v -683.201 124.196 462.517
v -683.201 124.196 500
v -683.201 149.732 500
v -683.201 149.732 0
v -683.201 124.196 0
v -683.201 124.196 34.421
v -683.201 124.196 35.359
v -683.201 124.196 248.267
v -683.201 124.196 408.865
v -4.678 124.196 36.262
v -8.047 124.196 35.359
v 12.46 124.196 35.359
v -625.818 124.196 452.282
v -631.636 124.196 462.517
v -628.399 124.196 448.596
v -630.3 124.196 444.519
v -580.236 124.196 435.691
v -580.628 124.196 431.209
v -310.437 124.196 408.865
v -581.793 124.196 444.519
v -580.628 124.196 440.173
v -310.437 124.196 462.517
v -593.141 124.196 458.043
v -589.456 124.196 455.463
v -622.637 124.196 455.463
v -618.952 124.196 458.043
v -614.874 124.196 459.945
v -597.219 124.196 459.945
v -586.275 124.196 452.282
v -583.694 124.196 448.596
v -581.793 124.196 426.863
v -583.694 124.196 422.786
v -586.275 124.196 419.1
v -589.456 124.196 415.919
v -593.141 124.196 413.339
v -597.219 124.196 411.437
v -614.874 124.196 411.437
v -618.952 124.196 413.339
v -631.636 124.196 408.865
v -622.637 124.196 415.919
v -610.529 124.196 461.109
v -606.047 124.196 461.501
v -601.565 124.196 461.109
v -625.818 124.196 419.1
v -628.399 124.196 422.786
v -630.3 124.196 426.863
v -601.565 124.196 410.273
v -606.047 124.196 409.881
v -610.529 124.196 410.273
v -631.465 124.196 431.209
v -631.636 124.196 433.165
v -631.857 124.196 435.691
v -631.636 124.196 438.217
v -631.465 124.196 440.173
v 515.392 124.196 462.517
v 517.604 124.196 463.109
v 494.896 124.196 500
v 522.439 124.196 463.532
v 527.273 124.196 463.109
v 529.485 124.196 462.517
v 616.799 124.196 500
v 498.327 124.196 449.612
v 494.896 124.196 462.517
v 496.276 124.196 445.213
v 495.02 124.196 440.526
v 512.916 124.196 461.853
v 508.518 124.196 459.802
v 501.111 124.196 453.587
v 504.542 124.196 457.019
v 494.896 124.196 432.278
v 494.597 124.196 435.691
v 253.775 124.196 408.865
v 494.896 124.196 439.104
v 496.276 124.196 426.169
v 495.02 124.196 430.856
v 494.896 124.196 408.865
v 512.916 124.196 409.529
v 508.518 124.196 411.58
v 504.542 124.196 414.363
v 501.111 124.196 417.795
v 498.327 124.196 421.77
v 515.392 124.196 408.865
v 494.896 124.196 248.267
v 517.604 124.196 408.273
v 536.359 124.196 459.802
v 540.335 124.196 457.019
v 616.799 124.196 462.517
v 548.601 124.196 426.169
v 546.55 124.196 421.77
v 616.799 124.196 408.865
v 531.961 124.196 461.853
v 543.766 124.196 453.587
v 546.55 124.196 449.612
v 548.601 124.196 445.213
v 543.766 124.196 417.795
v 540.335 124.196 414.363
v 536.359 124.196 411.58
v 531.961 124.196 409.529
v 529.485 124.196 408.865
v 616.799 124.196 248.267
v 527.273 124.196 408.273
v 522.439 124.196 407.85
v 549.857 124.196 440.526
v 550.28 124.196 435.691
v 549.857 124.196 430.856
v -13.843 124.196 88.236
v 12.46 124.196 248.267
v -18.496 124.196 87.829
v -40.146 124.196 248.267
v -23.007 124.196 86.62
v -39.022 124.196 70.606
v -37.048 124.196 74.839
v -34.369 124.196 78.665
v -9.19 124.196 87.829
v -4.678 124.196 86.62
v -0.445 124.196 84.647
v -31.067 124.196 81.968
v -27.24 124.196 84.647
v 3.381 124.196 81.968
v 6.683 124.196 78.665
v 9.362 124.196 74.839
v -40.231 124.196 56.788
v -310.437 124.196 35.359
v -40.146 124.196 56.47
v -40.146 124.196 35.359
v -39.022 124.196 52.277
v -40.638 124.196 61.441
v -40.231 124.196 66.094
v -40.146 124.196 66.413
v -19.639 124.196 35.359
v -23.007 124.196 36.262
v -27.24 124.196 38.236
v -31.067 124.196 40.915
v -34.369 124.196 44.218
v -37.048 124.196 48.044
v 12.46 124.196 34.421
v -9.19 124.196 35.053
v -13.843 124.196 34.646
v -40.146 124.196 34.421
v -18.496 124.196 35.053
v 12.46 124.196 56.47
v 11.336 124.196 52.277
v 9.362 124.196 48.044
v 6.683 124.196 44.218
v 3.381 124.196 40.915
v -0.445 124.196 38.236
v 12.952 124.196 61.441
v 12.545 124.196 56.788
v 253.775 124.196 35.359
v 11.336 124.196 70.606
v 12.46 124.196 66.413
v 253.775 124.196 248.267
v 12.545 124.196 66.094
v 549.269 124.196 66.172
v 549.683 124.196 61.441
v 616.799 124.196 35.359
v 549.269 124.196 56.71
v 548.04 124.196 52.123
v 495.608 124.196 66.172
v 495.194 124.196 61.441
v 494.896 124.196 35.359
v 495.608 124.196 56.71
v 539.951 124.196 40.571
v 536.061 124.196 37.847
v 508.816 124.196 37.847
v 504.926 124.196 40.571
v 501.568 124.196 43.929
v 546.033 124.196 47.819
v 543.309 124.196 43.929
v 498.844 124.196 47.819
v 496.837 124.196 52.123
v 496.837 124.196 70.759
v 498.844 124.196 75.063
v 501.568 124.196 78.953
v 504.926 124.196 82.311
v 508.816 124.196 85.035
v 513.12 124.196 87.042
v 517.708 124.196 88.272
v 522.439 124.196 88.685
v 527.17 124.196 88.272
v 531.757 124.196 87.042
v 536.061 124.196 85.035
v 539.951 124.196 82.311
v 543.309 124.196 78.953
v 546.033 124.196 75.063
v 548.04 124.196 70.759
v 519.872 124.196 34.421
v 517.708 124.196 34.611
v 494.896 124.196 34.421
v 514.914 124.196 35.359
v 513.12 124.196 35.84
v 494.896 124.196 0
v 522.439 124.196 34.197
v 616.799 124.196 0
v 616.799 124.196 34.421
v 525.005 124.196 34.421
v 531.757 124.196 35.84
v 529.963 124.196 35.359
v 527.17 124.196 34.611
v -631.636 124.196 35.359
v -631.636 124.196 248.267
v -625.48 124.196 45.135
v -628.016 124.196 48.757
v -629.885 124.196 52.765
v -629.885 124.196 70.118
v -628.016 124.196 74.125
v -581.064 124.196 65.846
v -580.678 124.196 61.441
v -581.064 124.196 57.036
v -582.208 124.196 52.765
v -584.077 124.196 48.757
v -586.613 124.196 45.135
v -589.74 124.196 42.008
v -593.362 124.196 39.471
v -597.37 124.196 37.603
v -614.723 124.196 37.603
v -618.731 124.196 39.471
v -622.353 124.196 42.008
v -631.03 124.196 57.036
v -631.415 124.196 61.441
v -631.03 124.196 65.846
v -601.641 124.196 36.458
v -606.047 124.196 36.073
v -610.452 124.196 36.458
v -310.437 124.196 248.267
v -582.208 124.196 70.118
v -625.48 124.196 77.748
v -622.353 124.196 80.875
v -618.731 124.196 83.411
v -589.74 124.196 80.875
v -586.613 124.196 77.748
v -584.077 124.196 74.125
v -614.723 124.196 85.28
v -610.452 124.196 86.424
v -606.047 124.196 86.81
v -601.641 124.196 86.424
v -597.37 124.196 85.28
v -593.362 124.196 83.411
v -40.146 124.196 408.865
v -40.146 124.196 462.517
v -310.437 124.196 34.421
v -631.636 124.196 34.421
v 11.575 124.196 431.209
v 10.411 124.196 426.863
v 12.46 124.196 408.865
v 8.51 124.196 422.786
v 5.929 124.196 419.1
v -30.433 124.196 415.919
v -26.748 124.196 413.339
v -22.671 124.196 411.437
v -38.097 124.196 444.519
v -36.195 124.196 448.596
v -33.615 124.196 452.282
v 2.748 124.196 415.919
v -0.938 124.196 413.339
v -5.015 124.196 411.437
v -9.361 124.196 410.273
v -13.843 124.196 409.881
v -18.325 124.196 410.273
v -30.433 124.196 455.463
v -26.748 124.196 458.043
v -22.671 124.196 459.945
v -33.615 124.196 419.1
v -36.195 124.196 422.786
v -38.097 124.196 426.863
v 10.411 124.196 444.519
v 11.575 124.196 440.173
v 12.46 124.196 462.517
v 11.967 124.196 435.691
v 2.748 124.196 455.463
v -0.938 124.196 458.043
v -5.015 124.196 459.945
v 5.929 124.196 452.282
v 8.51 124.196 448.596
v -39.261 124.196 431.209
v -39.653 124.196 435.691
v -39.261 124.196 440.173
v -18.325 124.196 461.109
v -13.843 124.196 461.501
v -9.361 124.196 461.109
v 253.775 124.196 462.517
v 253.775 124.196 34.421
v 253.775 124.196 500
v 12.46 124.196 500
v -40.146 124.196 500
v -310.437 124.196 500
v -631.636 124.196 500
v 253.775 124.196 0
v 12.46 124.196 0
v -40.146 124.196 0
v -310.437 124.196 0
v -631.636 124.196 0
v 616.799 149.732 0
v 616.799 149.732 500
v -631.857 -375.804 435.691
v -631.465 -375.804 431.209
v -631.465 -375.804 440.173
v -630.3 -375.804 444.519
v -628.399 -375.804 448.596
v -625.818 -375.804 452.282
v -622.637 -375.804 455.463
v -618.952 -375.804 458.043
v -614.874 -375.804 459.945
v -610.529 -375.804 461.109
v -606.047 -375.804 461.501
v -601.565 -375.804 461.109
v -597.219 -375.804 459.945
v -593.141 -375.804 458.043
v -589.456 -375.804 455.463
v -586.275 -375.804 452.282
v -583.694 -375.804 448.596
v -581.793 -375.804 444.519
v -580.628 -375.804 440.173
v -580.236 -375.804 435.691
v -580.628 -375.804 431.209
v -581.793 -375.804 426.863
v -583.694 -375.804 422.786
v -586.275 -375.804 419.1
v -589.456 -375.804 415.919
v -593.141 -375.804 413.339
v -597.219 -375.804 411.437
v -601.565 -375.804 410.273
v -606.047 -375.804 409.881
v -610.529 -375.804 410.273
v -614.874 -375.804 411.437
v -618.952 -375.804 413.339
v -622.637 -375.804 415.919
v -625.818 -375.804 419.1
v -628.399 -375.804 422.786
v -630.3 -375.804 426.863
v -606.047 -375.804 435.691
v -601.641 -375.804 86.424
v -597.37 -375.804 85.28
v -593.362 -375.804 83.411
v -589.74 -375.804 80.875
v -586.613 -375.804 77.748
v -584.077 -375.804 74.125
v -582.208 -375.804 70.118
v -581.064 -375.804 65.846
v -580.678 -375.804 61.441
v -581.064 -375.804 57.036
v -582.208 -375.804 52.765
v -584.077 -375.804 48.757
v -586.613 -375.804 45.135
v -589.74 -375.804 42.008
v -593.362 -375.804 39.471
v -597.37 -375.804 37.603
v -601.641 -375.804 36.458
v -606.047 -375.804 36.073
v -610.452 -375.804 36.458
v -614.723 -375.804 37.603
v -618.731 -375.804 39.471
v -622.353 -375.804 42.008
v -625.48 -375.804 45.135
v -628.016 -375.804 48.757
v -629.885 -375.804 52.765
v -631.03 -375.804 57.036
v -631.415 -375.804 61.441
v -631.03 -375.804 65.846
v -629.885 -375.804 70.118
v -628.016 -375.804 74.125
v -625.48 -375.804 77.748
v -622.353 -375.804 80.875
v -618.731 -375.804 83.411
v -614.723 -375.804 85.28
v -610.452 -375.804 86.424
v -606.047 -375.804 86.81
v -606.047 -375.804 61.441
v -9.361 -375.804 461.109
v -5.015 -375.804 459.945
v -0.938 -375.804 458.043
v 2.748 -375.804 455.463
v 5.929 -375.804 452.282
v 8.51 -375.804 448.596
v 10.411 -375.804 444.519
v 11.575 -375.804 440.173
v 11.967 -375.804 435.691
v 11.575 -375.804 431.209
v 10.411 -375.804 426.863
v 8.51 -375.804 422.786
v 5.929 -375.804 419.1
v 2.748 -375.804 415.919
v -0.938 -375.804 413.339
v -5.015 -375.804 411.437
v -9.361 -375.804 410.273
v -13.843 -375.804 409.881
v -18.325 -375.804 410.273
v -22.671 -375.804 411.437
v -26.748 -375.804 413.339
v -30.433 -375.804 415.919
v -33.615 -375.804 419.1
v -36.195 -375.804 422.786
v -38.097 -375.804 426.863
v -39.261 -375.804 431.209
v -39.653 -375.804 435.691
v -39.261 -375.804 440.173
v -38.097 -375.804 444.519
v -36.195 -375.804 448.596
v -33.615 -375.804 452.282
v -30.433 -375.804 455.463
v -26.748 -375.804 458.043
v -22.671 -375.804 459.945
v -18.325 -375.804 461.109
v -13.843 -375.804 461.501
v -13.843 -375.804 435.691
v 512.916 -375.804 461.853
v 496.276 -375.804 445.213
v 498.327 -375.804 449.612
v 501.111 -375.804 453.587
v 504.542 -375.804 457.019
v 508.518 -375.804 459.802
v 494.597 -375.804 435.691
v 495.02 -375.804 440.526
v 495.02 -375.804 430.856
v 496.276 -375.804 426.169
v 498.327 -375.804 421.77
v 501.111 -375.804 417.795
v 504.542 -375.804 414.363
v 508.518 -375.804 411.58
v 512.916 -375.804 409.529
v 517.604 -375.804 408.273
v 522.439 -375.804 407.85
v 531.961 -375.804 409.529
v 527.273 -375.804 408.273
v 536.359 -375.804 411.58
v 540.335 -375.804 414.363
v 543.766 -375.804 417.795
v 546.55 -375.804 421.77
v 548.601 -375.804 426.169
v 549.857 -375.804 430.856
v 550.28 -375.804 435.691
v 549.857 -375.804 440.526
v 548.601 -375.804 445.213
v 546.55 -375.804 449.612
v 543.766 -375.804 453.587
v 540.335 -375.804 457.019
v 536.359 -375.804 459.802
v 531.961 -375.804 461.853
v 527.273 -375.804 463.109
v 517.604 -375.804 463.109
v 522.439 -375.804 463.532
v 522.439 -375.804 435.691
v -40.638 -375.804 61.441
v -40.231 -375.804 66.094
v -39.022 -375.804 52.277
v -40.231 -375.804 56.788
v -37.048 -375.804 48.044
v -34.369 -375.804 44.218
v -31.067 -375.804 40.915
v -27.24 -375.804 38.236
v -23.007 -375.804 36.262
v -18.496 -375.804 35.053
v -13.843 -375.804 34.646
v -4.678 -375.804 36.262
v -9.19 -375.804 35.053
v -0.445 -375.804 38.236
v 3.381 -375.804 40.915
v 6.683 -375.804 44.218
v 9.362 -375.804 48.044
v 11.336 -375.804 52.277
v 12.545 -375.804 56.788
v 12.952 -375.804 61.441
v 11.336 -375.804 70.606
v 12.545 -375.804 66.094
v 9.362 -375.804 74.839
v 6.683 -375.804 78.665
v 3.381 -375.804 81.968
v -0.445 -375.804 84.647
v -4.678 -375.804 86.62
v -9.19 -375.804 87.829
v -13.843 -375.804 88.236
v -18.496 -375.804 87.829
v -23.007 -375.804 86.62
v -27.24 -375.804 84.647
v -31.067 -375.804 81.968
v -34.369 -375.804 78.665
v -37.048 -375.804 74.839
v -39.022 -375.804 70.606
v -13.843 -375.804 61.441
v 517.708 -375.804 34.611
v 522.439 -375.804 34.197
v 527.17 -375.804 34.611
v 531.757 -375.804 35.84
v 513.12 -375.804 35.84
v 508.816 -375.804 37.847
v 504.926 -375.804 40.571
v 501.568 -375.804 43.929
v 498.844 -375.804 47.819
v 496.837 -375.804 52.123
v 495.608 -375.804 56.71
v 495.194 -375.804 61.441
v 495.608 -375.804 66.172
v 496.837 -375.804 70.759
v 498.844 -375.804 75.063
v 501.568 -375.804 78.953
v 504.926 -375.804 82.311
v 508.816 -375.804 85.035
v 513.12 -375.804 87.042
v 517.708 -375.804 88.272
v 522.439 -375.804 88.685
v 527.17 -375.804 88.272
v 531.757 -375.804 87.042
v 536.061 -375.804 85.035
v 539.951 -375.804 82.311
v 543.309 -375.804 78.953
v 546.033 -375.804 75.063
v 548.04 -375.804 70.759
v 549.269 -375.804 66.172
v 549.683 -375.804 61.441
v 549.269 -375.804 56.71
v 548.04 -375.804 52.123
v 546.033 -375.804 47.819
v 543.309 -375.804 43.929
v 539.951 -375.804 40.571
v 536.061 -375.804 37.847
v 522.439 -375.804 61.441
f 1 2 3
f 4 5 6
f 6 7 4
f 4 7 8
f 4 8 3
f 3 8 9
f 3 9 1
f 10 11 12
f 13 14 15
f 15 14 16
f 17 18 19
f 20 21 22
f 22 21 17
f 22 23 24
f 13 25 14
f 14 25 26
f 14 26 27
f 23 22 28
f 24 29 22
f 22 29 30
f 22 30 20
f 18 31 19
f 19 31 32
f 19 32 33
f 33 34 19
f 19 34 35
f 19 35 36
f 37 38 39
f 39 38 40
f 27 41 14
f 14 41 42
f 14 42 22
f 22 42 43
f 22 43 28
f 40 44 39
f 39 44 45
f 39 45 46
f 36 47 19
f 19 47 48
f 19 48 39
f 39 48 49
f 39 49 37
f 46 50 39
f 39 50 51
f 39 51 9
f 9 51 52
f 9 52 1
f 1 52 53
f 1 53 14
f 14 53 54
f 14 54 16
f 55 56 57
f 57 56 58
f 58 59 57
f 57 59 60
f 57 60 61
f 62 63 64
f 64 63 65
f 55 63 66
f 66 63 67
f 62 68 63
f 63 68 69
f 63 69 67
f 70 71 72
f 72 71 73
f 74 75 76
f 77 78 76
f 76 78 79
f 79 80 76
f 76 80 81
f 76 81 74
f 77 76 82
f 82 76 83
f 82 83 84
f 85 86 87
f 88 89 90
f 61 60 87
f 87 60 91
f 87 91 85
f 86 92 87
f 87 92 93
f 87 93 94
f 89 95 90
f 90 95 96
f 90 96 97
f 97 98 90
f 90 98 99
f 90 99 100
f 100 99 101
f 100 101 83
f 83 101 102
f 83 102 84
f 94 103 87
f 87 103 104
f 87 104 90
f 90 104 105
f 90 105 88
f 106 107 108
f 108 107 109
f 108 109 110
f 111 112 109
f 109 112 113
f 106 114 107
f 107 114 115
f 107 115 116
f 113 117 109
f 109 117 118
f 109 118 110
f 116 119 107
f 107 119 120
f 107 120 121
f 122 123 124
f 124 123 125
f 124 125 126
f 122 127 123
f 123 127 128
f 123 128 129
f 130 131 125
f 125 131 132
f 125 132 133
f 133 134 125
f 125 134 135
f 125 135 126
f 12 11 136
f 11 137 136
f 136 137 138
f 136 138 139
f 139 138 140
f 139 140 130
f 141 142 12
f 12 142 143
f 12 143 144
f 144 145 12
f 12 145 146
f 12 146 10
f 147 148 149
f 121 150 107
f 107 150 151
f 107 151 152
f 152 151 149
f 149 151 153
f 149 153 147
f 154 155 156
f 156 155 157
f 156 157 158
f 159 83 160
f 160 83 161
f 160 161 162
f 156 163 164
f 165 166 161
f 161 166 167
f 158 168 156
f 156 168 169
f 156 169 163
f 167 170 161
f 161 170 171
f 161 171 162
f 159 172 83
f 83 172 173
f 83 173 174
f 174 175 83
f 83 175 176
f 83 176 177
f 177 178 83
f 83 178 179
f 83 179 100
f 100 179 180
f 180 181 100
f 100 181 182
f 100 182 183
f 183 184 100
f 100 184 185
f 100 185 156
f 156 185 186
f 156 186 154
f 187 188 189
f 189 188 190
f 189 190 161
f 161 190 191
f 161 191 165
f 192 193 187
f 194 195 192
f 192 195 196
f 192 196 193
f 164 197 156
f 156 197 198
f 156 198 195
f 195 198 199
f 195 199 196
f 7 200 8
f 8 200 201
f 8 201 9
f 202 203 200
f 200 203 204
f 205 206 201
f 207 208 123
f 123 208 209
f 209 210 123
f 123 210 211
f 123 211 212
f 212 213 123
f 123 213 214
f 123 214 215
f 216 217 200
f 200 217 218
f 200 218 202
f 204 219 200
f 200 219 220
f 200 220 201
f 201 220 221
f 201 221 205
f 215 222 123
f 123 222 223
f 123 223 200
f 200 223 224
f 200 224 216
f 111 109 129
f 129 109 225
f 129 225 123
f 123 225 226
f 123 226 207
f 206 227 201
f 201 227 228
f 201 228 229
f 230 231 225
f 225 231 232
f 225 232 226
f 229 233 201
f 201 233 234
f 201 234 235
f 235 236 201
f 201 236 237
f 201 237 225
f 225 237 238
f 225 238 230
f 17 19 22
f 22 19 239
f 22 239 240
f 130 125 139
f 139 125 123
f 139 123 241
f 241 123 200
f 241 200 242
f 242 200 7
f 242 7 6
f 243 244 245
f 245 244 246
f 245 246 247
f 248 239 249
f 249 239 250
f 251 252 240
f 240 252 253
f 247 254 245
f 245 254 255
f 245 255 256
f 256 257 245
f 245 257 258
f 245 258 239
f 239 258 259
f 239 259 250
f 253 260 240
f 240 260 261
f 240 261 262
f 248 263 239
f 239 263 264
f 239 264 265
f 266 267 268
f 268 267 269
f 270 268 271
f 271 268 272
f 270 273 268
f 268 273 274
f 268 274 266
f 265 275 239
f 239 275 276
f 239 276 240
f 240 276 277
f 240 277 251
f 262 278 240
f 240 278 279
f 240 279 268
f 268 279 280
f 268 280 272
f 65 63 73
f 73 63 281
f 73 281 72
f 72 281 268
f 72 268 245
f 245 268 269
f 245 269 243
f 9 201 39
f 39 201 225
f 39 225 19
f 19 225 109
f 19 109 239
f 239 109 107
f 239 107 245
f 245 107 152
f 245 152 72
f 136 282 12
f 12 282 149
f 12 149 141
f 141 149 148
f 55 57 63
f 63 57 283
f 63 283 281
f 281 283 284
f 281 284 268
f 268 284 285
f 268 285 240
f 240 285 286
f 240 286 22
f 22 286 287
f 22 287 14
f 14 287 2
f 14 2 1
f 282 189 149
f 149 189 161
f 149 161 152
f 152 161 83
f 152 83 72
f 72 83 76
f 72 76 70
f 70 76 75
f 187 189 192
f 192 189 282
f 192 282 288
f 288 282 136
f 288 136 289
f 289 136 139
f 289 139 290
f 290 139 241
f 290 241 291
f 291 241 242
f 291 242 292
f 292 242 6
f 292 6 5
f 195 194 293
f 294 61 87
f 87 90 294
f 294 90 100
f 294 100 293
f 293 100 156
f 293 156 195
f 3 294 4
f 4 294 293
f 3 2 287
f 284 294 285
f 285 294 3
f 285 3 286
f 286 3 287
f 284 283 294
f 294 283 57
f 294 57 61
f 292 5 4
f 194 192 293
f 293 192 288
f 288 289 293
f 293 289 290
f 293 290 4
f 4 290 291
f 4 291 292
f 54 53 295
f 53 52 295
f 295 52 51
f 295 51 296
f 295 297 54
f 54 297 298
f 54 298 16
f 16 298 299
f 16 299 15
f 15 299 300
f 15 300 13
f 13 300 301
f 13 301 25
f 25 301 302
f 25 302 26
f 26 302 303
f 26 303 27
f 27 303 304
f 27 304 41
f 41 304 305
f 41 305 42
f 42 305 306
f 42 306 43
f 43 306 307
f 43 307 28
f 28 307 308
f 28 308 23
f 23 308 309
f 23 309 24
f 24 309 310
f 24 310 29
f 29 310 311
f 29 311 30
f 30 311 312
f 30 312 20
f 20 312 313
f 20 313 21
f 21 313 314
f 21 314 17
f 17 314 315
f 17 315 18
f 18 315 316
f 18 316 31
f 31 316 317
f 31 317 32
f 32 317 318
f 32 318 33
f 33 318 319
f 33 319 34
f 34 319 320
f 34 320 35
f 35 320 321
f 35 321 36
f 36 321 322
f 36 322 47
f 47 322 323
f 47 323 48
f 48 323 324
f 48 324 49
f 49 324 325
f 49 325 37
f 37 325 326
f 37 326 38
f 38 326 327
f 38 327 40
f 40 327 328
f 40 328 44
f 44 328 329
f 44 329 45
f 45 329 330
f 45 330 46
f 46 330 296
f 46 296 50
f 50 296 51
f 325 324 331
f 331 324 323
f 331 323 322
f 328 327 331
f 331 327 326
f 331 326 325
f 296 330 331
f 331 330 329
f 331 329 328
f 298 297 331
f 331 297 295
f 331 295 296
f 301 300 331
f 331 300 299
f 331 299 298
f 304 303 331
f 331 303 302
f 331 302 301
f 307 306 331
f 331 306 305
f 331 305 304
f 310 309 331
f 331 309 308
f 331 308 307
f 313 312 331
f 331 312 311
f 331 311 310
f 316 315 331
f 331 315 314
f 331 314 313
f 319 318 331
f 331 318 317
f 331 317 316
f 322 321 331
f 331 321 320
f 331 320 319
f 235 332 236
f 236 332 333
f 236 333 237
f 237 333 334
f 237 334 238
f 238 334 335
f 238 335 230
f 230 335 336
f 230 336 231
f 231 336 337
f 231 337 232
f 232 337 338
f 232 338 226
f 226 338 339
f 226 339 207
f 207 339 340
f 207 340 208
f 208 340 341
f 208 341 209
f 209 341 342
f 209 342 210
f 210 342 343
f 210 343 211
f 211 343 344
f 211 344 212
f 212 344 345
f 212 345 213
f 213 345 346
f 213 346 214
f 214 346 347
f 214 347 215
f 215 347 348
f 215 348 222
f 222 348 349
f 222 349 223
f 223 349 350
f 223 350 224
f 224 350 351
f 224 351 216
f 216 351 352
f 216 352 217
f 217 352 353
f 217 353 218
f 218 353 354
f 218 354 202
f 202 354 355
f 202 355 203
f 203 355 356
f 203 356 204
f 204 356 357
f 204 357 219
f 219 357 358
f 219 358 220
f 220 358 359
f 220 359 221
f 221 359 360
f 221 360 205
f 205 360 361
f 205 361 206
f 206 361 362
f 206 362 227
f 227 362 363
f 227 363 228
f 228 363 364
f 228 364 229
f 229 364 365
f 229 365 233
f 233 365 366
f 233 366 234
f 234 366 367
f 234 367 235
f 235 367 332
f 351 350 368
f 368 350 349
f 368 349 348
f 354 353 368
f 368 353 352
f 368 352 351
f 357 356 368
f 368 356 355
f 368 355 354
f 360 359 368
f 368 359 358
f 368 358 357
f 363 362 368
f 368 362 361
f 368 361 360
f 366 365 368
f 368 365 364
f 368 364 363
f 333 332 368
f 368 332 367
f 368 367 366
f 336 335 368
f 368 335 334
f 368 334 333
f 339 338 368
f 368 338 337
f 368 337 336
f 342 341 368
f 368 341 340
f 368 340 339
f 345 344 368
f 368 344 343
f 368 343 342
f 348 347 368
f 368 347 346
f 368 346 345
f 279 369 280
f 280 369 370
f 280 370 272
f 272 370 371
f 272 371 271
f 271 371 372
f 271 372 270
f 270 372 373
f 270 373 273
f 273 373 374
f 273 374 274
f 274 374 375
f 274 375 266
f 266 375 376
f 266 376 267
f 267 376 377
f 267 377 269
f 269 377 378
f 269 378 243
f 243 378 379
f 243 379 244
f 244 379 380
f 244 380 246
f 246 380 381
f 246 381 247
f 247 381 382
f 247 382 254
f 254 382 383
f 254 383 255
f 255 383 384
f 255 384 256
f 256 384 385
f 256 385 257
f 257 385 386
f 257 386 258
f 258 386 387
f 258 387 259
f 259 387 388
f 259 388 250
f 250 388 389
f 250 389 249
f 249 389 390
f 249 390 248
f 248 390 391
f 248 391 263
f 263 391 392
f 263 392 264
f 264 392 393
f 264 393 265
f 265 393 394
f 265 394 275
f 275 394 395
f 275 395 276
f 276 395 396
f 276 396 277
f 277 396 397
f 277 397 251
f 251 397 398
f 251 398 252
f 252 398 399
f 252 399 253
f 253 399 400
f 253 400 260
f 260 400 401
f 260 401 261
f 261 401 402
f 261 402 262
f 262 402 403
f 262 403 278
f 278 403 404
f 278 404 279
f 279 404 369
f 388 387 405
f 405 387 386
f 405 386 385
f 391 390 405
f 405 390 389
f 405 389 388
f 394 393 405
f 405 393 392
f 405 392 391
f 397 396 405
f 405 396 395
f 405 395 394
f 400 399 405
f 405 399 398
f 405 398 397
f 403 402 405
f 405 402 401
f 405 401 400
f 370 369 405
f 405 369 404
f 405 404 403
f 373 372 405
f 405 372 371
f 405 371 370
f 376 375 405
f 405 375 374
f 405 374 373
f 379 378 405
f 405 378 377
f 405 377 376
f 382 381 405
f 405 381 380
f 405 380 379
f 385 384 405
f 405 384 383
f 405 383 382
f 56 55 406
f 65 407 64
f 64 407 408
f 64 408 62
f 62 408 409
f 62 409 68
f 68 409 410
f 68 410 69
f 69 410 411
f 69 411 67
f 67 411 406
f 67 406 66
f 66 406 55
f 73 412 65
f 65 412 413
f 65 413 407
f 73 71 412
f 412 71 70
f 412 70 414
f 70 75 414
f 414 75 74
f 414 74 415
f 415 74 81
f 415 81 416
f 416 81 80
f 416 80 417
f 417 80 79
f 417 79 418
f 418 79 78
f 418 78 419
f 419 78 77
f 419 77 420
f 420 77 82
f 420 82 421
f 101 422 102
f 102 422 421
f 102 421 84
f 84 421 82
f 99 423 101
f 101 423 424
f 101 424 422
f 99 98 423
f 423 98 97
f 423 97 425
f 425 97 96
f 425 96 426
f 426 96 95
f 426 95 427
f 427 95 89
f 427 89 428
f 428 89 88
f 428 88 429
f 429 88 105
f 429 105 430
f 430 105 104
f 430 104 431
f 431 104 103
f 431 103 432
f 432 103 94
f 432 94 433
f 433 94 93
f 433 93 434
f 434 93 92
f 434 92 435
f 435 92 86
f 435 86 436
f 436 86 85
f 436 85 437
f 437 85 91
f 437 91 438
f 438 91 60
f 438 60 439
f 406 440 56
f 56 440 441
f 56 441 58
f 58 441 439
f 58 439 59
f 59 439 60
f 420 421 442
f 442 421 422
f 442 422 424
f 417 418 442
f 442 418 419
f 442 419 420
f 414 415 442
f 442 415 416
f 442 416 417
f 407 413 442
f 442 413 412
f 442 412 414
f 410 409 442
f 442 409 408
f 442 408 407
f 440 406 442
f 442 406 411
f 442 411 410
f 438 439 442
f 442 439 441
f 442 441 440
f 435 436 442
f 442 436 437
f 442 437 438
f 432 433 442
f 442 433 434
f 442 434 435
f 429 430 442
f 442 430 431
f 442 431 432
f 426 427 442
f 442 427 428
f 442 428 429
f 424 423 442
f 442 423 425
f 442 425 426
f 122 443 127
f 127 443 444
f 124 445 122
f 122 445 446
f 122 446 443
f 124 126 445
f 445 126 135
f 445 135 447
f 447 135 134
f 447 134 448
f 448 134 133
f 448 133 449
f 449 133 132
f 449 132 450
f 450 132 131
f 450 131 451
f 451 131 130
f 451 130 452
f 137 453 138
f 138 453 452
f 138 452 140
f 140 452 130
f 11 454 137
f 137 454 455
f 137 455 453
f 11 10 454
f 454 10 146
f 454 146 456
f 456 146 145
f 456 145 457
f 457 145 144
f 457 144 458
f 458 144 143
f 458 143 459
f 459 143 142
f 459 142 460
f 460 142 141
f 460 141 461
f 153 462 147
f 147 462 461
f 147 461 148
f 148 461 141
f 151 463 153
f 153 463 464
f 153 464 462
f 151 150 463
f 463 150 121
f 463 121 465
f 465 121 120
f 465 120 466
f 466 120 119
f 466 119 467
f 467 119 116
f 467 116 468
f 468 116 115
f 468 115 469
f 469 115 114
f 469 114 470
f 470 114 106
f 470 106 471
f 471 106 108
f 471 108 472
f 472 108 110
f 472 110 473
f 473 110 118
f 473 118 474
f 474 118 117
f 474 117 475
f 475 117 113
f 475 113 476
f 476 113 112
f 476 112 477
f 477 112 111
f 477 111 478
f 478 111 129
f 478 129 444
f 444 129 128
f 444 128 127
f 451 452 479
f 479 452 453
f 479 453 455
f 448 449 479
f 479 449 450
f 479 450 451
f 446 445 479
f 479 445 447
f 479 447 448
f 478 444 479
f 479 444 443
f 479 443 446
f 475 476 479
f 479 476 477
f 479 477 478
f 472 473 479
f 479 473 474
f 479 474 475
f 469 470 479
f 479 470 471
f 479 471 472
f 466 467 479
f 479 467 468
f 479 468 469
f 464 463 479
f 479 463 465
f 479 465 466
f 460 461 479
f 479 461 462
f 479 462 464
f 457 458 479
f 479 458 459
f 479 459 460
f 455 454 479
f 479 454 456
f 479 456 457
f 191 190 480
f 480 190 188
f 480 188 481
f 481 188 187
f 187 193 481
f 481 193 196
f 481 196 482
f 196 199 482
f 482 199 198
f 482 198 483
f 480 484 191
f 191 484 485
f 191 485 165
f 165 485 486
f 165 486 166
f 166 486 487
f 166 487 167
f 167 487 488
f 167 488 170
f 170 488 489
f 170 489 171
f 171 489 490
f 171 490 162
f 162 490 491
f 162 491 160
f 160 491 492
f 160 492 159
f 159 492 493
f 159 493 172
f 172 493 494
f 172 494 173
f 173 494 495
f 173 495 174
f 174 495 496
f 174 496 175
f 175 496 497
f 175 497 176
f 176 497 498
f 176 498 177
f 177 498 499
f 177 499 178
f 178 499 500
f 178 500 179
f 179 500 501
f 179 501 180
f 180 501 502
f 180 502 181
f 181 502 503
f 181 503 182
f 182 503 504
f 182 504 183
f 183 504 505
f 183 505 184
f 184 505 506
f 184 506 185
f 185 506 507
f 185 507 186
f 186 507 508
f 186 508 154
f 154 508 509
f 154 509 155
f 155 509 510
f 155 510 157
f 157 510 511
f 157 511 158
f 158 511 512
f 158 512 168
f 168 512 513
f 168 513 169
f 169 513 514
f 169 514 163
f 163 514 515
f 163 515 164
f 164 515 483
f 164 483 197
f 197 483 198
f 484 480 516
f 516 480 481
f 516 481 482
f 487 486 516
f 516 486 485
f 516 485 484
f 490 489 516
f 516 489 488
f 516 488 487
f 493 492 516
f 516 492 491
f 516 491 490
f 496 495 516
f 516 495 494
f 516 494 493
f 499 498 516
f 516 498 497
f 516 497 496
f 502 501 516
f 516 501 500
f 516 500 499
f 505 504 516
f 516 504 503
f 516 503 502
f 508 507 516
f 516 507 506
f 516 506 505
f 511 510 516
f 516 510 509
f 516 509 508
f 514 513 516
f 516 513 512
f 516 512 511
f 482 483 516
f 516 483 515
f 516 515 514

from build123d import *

# Parameters (mm, degrees)
CROQUIS1_W              = 1300
CROQUIS1_H              = 25.535714286
SALIENTE_EXTRUIR1_DEPTH = 500
CROQUIS2_R              = 25.810333558
CROQUIS2_R_2            = 25.368411914
CROQUIS2_R_3            = 27.841445981
CROQUIS2_R_4            = 26.795222898
CROQUIS2_R_5            = 27.244240978
SALIENTE_EXTRUIR2_DEPTH = 500


with BuildPart() as part:
    # Croquis1 → Saliente-Extruir1 (new body)
    with BuildSketch(Plane.XY):
        with Locations((-33.200611326, 136.964285714)):
            Rectangle(CROQUIS1_W, CROQUIS1_H)
    extrude(amount=SALIENTE_EXTRUIR1_DEPTH)

    # Croquis2 → Saliente-Extruir2 (add)
    with BuildSketch(Plane.XZ.offset(-124.196428571)):
        with Locations((-606.046625582, 435.691010879)):
            Circle(CROQUIS2_R)
        with Locations((-606.046625582, 61.441174281)):
            Circle(CROQUIS2_R_2)
        with Locations((-13.842861157, 435.691010879)):
            Circle(CROQUIS2_R)
        with Locations((522.438513892, 435.691010879)):
            Circle(CROQUIS2_R_3)
        with Locations((-13.842861157, 61.441174281)):
            Circle(CROQUIS2_R_4)
        with Locations((522.438513892, 61.441174281)):
            Circle(CROQUIS2_R_5)
    extrude(amount=SALIENTE_EXTRUIR2_DEPTH)


solid = part.part
